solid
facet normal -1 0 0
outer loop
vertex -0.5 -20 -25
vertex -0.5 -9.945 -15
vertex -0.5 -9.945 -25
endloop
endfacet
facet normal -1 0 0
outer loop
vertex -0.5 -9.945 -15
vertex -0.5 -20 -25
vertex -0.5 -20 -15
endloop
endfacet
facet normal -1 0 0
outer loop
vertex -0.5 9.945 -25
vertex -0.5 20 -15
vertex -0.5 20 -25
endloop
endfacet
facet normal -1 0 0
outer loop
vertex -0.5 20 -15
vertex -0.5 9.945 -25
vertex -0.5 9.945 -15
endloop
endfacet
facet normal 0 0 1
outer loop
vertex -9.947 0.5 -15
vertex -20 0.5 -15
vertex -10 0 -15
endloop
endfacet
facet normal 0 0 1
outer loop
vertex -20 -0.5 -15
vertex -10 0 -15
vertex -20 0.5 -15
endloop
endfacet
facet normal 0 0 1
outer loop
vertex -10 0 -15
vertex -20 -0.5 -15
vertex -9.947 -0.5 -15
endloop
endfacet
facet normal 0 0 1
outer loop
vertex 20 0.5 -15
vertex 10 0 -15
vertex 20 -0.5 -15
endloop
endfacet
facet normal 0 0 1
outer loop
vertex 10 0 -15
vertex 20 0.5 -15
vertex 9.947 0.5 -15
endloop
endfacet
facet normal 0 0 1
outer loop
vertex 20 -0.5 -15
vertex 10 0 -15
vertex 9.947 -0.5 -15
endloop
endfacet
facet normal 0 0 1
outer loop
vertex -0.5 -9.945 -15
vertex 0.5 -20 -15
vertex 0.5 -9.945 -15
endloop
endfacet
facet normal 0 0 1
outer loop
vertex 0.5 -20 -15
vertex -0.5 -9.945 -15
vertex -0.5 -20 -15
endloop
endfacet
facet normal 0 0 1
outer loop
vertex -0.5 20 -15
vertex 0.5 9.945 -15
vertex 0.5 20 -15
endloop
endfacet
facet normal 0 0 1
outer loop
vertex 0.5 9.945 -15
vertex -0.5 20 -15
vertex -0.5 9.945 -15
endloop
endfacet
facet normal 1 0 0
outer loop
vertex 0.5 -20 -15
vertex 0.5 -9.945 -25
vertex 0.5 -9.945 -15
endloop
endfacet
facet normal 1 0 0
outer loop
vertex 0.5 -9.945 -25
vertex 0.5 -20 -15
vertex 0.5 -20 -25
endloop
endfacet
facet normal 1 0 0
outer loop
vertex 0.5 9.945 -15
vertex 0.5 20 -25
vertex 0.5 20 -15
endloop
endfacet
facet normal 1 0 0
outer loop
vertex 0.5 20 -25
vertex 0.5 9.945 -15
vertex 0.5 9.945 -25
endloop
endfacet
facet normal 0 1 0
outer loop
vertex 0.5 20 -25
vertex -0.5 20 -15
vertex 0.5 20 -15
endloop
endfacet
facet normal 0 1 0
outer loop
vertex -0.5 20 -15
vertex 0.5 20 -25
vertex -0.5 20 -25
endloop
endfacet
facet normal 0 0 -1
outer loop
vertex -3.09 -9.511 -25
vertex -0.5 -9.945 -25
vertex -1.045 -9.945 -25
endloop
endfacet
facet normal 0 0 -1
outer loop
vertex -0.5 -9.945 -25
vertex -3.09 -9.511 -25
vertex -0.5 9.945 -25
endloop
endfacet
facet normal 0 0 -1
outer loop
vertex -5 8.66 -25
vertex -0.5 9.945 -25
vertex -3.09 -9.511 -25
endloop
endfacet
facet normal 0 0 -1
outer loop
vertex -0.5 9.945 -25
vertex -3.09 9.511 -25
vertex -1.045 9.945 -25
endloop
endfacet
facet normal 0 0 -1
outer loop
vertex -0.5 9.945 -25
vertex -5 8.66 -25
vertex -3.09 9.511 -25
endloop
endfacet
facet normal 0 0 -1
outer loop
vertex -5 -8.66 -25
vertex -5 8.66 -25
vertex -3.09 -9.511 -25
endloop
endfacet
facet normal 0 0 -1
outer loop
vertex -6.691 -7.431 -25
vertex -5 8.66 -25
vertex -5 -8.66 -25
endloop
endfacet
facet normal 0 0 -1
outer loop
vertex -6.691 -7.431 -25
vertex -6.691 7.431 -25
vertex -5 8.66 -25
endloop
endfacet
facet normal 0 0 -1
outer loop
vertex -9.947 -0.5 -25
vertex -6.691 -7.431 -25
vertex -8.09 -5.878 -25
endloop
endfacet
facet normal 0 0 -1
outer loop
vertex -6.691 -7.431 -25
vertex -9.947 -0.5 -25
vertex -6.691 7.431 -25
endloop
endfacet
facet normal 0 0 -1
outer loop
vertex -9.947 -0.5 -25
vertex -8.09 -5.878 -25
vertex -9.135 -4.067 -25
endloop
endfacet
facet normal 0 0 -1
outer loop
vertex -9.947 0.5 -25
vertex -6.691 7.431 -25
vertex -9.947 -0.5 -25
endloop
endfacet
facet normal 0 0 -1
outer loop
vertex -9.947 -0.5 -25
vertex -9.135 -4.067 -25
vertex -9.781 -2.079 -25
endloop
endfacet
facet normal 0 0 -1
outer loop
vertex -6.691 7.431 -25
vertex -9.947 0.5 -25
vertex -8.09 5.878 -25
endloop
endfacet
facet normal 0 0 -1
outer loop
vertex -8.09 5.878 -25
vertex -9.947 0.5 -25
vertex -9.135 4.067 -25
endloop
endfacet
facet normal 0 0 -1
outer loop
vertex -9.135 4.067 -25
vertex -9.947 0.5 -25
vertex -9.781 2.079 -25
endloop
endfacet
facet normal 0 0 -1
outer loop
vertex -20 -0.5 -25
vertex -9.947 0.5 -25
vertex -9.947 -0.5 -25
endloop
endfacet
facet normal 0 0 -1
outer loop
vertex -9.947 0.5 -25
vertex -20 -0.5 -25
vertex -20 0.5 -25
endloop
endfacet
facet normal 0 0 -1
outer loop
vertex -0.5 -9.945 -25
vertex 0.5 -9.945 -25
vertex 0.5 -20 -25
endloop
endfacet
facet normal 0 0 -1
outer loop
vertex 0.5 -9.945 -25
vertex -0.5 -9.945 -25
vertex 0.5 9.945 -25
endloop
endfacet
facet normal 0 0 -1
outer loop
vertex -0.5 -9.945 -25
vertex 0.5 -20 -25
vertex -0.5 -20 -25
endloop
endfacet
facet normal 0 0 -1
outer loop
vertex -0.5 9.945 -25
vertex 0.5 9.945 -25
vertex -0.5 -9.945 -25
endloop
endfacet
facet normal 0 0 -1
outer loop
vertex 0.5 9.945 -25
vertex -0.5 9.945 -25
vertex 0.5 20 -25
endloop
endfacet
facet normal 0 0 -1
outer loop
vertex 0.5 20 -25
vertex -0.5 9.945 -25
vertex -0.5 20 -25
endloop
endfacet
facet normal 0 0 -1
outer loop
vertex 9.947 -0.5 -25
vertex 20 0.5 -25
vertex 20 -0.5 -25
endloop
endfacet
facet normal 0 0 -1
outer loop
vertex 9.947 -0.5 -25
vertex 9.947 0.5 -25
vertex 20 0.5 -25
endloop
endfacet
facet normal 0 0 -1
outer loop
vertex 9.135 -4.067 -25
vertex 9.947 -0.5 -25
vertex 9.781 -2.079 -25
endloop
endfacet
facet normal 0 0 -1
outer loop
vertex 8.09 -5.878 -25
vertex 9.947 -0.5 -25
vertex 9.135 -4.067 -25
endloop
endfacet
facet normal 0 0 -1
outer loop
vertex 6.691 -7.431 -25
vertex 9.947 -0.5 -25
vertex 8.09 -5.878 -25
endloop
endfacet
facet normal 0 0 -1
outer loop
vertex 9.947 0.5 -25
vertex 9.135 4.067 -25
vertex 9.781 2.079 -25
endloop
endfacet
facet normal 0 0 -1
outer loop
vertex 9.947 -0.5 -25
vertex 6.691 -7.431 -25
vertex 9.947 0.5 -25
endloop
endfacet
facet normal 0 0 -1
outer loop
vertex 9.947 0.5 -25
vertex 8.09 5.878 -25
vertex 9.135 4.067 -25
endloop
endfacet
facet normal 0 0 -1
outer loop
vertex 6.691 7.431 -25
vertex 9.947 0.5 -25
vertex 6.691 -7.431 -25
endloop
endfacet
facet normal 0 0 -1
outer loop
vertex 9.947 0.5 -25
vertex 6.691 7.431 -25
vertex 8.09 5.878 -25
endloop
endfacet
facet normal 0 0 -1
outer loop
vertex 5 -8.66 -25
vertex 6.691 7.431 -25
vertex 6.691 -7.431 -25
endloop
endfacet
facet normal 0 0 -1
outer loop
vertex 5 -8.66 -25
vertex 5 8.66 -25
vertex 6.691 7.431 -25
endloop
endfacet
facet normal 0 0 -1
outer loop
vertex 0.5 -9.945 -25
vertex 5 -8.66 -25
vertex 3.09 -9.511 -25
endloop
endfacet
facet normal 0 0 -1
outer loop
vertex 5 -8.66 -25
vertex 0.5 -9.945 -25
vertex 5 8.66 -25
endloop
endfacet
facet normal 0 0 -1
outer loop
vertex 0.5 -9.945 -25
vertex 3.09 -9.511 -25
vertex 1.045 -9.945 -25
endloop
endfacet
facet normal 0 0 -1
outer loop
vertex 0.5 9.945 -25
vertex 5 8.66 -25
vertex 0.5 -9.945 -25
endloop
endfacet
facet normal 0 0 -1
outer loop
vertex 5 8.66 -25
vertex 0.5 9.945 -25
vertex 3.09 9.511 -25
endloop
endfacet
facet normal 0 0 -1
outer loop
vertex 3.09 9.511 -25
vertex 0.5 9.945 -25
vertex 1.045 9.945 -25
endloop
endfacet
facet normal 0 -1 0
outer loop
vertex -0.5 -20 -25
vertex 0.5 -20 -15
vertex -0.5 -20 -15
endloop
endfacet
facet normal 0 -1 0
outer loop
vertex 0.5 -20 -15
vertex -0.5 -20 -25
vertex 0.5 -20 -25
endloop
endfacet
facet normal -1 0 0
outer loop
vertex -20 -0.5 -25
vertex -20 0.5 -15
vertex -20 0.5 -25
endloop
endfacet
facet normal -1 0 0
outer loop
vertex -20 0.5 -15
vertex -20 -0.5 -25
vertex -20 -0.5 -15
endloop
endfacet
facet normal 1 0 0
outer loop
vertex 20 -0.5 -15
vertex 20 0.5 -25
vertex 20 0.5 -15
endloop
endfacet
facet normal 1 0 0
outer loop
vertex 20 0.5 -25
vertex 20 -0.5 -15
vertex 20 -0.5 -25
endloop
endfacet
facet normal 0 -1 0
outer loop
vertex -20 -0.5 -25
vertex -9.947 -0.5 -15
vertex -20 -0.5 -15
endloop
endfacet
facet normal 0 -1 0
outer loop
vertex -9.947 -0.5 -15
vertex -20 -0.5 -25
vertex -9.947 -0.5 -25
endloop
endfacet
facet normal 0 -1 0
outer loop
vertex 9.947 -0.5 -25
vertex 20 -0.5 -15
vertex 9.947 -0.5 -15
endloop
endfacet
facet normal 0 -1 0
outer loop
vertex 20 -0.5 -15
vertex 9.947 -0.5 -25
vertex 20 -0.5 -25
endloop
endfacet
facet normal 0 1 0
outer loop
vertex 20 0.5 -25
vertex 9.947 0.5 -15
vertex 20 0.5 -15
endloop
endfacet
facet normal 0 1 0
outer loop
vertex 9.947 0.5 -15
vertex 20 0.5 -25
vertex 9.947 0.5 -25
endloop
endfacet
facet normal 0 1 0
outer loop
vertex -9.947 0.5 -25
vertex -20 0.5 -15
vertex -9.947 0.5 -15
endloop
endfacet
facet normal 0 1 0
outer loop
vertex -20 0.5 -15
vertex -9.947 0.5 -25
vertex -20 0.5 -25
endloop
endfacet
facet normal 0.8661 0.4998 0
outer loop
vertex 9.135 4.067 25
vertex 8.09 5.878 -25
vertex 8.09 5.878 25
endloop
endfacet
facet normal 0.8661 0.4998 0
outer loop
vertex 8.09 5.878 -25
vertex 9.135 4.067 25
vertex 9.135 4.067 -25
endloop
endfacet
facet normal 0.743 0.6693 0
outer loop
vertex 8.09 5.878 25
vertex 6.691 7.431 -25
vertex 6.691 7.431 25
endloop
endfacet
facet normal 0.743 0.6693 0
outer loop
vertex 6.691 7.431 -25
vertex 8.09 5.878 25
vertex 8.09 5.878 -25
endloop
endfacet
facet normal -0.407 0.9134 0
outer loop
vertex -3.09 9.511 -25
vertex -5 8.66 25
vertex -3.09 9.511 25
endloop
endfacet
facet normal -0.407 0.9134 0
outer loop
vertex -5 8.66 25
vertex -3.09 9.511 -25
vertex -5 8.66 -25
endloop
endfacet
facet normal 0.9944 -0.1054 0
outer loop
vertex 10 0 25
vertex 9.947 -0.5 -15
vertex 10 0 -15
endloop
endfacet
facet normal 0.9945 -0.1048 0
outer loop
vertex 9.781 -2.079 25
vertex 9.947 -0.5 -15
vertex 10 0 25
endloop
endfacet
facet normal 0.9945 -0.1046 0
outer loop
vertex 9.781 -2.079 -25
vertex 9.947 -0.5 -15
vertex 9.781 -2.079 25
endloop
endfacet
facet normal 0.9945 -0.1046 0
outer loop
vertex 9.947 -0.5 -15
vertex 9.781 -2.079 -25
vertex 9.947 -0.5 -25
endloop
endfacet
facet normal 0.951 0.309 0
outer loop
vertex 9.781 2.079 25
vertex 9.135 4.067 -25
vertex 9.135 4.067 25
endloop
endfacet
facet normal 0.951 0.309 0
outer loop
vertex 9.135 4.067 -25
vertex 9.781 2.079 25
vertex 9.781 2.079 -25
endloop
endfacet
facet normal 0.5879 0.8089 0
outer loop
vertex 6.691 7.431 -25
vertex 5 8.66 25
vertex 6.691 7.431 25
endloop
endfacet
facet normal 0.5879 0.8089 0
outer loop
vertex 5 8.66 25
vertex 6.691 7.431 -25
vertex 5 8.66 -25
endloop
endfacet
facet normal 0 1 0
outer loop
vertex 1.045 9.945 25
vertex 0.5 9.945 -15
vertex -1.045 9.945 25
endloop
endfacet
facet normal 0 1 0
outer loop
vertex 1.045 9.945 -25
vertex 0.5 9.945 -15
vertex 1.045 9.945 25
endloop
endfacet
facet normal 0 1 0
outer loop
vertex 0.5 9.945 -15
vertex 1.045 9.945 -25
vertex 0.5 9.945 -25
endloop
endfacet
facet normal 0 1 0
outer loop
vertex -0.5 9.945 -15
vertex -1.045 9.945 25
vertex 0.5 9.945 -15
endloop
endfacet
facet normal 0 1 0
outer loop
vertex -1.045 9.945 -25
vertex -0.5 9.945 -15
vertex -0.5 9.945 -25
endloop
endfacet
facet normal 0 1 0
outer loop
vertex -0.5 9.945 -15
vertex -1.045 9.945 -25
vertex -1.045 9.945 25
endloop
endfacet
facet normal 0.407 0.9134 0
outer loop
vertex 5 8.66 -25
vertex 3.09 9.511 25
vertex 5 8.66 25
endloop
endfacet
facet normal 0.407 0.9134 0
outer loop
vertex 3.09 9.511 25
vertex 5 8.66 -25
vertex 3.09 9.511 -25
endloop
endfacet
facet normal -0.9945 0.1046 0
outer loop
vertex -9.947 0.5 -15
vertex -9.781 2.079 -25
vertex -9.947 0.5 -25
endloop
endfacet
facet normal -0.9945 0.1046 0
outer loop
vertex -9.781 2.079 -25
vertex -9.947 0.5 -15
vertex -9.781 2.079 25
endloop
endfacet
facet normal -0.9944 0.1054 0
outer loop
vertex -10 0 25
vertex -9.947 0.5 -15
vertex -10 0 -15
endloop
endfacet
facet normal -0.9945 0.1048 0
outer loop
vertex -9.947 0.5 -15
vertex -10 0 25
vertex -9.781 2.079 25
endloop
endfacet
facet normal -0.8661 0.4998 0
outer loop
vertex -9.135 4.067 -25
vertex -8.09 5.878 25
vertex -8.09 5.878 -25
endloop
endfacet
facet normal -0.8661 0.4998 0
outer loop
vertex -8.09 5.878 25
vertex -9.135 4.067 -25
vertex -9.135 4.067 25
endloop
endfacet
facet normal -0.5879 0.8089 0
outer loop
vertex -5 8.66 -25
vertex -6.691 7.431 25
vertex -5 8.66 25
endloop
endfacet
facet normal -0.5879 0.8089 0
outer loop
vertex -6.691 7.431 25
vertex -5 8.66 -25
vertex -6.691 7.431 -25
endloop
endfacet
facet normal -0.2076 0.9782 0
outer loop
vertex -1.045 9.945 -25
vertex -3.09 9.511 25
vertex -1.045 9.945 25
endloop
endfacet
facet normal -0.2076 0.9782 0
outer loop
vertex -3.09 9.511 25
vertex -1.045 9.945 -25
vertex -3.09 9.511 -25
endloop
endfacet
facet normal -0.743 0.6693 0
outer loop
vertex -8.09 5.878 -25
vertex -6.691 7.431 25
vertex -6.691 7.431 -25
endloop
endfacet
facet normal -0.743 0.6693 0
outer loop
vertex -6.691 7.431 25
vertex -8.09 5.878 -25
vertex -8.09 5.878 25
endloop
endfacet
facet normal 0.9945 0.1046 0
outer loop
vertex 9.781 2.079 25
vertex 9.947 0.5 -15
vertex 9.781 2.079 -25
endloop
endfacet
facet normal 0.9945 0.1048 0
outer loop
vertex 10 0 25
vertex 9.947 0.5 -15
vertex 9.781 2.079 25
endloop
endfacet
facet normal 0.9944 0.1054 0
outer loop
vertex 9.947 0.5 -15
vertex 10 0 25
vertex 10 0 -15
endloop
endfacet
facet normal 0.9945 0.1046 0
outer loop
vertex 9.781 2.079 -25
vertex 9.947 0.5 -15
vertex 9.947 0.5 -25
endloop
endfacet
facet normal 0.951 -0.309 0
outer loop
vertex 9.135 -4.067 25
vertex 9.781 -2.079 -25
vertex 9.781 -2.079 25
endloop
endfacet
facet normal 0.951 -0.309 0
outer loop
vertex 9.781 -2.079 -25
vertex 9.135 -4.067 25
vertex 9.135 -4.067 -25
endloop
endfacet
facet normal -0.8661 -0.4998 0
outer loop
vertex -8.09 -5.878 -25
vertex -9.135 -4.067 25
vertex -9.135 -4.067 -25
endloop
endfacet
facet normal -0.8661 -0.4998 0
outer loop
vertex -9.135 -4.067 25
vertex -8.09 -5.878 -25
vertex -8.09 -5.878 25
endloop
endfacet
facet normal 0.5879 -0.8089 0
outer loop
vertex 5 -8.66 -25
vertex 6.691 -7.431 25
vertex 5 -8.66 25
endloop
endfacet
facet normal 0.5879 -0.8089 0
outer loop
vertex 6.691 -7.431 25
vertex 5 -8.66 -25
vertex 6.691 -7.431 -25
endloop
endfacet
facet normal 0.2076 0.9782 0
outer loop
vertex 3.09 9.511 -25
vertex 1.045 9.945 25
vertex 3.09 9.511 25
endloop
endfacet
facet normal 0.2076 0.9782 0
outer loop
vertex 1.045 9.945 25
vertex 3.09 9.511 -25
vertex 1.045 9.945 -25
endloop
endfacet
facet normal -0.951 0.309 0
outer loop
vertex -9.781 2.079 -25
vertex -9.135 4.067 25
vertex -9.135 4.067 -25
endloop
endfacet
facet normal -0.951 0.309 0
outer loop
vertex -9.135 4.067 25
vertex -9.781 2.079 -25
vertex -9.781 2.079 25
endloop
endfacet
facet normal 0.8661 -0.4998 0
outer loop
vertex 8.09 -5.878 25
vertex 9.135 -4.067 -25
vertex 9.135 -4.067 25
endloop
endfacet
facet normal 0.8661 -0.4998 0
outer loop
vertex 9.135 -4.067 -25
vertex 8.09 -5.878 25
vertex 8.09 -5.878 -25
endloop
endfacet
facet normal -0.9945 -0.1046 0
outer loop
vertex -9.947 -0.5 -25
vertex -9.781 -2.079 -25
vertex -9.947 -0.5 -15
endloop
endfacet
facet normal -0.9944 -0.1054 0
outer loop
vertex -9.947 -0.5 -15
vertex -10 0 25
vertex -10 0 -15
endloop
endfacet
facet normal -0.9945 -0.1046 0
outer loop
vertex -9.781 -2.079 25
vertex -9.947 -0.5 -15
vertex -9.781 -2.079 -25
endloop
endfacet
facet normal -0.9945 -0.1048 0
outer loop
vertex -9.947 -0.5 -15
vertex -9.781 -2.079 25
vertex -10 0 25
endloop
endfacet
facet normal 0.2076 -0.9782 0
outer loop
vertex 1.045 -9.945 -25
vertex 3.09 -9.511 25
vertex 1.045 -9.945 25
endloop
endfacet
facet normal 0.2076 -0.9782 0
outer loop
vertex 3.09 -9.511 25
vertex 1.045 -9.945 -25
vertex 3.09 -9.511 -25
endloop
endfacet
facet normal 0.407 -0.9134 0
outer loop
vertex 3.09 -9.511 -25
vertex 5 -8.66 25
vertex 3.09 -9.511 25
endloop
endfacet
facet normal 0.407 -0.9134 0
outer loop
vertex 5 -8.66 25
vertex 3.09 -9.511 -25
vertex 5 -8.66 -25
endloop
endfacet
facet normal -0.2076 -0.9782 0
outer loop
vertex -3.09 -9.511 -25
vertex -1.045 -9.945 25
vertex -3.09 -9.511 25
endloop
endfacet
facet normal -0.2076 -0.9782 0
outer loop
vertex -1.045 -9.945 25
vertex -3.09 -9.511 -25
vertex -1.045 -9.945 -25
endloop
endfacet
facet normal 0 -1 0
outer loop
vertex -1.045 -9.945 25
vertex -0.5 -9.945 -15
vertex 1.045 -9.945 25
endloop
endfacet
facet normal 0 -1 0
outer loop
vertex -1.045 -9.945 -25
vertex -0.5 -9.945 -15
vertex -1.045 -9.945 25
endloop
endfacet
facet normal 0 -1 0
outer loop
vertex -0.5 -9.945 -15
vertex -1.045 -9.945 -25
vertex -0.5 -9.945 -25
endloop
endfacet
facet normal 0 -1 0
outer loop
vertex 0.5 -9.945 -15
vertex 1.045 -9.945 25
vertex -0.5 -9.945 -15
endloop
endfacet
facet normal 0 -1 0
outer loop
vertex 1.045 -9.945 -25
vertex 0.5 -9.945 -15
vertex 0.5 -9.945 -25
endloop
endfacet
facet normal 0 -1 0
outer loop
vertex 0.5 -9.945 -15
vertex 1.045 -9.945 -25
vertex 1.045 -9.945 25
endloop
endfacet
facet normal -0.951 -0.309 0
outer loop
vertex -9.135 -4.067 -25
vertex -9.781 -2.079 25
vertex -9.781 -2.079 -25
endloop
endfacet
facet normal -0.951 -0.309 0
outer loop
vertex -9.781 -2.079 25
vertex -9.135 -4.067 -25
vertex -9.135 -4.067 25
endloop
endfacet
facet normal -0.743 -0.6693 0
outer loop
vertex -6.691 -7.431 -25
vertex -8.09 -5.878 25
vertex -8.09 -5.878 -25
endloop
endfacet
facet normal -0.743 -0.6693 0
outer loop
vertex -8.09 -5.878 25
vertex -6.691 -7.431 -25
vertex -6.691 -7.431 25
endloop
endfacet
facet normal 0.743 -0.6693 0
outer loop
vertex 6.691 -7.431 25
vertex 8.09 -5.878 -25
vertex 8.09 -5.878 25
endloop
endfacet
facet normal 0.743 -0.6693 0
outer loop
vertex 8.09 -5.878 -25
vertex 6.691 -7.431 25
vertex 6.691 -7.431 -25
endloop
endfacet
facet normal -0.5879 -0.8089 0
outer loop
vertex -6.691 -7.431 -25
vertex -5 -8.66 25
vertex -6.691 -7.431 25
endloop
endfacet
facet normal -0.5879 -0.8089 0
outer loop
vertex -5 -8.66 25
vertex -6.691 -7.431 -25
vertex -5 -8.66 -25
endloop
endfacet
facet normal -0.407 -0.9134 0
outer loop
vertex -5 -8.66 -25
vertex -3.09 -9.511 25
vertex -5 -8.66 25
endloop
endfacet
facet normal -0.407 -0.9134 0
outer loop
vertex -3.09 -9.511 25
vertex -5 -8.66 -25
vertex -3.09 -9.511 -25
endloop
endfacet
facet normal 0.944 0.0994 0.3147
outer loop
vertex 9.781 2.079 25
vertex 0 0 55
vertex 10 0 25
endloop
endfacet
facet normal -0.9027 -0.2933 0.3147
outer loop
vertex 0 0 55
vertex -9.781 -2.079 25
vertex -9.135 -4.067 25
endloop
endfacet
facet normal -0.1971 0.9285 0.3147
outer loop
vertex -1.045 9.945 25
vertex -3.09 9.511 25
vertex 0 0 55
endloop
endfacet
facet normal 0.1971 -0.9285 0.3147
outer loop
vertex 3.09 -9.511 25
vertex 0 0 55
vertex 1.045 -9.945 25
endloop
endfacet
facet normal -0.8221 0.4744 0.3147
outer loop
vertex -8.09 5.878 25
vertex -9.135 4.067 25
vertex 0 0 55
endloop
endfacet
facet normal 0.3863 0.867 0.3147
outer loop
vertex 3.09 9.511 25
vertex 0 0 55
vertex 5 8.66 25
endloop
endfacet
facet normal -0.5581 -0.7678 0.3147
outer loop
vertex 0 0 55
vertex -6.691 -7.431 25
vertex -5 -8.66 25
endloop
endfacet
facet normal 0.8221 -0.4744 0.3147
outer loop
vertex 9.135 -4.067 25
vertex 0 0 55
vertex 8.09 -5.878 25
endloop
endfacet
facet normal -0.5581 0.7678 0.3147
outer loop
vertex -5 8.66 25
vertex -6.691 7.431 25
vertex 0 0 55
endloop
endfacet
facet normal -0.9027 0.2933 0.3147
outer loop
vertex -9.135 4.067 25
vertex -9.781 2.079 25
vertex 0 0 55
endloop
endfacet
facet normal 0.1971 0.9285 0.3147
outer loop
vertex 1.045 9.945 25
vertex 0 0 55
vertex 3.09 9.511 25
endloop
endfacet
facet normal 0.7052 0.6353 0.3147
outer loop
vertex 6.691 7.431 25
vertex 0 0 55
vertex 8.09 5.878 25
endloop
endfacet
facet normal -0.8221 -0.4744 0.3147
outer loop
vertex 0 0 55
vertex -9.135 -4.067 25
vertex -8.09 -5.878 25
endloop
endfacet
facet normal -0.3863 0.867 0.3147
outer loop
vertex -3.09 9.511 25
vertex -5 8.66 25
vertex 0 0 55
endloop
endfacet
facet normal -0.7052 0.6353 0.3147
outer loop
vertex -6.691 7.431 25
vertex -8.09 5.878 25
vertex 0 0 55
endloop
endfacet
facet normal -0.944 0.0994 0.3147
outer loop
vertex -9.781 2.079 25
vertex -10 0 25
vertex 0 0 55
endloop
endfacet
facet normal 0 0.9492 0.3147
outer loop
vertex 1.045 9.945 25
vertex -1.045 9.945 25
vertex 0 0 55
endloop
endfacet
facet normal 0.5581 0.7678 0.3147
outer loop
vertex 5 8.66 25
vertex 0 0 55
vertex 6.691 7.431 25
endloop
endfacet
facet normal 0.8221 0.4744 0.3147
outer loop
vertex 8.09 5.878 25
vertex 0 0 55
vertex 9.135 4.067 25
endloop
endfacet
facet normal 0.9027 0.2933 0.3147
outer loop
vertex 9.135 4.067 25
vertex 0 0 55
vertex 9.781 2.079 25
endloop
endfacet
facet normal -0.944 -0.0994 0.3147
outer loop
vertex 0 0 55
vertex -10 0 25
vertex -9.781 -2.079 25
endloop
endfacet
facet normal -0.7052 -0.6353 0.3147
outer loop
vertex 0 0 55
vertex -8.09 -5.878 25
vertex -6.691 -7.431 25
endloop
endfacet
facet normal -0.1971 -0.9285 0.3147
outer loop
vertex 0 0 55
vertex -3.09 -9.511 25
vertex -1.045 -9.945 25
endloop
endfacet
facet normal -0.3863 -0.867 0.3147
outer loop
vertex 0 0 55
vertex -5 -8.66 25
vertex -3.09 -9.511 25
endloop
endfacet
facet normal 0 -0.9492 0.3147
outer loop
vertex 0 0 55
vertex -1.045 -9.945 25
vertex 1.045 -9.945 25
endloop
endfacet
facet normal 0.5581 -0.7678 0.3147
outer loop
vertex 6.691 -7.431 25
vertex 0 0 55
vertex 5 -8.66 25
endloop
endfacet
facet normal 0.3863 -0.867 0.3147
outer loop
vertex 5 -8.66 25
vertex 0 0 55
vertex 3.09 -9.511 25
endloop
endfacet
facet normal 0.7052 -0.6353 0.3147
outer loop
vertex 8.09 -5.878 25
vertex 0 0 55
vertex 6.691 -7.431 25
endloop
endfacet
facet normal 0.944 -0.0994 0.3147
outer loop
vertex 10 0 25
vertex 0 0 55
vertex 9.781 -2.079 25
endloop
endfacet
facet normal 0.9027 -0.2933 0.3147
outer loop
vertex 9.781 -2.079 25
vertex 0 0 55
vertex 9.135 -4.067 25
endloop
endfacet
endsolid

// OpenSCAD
cylinder(h=50, r1=10, r2=10, center=true);
translate([0,0,40]) {
    cylinder(h=30, r1=10, r2=0, center=true);
}
translate([0, 0, -20]) {
    cube(size = [1, 40, 10], center = true);
    cube(size = [40, 1, 10], center = true);
}
